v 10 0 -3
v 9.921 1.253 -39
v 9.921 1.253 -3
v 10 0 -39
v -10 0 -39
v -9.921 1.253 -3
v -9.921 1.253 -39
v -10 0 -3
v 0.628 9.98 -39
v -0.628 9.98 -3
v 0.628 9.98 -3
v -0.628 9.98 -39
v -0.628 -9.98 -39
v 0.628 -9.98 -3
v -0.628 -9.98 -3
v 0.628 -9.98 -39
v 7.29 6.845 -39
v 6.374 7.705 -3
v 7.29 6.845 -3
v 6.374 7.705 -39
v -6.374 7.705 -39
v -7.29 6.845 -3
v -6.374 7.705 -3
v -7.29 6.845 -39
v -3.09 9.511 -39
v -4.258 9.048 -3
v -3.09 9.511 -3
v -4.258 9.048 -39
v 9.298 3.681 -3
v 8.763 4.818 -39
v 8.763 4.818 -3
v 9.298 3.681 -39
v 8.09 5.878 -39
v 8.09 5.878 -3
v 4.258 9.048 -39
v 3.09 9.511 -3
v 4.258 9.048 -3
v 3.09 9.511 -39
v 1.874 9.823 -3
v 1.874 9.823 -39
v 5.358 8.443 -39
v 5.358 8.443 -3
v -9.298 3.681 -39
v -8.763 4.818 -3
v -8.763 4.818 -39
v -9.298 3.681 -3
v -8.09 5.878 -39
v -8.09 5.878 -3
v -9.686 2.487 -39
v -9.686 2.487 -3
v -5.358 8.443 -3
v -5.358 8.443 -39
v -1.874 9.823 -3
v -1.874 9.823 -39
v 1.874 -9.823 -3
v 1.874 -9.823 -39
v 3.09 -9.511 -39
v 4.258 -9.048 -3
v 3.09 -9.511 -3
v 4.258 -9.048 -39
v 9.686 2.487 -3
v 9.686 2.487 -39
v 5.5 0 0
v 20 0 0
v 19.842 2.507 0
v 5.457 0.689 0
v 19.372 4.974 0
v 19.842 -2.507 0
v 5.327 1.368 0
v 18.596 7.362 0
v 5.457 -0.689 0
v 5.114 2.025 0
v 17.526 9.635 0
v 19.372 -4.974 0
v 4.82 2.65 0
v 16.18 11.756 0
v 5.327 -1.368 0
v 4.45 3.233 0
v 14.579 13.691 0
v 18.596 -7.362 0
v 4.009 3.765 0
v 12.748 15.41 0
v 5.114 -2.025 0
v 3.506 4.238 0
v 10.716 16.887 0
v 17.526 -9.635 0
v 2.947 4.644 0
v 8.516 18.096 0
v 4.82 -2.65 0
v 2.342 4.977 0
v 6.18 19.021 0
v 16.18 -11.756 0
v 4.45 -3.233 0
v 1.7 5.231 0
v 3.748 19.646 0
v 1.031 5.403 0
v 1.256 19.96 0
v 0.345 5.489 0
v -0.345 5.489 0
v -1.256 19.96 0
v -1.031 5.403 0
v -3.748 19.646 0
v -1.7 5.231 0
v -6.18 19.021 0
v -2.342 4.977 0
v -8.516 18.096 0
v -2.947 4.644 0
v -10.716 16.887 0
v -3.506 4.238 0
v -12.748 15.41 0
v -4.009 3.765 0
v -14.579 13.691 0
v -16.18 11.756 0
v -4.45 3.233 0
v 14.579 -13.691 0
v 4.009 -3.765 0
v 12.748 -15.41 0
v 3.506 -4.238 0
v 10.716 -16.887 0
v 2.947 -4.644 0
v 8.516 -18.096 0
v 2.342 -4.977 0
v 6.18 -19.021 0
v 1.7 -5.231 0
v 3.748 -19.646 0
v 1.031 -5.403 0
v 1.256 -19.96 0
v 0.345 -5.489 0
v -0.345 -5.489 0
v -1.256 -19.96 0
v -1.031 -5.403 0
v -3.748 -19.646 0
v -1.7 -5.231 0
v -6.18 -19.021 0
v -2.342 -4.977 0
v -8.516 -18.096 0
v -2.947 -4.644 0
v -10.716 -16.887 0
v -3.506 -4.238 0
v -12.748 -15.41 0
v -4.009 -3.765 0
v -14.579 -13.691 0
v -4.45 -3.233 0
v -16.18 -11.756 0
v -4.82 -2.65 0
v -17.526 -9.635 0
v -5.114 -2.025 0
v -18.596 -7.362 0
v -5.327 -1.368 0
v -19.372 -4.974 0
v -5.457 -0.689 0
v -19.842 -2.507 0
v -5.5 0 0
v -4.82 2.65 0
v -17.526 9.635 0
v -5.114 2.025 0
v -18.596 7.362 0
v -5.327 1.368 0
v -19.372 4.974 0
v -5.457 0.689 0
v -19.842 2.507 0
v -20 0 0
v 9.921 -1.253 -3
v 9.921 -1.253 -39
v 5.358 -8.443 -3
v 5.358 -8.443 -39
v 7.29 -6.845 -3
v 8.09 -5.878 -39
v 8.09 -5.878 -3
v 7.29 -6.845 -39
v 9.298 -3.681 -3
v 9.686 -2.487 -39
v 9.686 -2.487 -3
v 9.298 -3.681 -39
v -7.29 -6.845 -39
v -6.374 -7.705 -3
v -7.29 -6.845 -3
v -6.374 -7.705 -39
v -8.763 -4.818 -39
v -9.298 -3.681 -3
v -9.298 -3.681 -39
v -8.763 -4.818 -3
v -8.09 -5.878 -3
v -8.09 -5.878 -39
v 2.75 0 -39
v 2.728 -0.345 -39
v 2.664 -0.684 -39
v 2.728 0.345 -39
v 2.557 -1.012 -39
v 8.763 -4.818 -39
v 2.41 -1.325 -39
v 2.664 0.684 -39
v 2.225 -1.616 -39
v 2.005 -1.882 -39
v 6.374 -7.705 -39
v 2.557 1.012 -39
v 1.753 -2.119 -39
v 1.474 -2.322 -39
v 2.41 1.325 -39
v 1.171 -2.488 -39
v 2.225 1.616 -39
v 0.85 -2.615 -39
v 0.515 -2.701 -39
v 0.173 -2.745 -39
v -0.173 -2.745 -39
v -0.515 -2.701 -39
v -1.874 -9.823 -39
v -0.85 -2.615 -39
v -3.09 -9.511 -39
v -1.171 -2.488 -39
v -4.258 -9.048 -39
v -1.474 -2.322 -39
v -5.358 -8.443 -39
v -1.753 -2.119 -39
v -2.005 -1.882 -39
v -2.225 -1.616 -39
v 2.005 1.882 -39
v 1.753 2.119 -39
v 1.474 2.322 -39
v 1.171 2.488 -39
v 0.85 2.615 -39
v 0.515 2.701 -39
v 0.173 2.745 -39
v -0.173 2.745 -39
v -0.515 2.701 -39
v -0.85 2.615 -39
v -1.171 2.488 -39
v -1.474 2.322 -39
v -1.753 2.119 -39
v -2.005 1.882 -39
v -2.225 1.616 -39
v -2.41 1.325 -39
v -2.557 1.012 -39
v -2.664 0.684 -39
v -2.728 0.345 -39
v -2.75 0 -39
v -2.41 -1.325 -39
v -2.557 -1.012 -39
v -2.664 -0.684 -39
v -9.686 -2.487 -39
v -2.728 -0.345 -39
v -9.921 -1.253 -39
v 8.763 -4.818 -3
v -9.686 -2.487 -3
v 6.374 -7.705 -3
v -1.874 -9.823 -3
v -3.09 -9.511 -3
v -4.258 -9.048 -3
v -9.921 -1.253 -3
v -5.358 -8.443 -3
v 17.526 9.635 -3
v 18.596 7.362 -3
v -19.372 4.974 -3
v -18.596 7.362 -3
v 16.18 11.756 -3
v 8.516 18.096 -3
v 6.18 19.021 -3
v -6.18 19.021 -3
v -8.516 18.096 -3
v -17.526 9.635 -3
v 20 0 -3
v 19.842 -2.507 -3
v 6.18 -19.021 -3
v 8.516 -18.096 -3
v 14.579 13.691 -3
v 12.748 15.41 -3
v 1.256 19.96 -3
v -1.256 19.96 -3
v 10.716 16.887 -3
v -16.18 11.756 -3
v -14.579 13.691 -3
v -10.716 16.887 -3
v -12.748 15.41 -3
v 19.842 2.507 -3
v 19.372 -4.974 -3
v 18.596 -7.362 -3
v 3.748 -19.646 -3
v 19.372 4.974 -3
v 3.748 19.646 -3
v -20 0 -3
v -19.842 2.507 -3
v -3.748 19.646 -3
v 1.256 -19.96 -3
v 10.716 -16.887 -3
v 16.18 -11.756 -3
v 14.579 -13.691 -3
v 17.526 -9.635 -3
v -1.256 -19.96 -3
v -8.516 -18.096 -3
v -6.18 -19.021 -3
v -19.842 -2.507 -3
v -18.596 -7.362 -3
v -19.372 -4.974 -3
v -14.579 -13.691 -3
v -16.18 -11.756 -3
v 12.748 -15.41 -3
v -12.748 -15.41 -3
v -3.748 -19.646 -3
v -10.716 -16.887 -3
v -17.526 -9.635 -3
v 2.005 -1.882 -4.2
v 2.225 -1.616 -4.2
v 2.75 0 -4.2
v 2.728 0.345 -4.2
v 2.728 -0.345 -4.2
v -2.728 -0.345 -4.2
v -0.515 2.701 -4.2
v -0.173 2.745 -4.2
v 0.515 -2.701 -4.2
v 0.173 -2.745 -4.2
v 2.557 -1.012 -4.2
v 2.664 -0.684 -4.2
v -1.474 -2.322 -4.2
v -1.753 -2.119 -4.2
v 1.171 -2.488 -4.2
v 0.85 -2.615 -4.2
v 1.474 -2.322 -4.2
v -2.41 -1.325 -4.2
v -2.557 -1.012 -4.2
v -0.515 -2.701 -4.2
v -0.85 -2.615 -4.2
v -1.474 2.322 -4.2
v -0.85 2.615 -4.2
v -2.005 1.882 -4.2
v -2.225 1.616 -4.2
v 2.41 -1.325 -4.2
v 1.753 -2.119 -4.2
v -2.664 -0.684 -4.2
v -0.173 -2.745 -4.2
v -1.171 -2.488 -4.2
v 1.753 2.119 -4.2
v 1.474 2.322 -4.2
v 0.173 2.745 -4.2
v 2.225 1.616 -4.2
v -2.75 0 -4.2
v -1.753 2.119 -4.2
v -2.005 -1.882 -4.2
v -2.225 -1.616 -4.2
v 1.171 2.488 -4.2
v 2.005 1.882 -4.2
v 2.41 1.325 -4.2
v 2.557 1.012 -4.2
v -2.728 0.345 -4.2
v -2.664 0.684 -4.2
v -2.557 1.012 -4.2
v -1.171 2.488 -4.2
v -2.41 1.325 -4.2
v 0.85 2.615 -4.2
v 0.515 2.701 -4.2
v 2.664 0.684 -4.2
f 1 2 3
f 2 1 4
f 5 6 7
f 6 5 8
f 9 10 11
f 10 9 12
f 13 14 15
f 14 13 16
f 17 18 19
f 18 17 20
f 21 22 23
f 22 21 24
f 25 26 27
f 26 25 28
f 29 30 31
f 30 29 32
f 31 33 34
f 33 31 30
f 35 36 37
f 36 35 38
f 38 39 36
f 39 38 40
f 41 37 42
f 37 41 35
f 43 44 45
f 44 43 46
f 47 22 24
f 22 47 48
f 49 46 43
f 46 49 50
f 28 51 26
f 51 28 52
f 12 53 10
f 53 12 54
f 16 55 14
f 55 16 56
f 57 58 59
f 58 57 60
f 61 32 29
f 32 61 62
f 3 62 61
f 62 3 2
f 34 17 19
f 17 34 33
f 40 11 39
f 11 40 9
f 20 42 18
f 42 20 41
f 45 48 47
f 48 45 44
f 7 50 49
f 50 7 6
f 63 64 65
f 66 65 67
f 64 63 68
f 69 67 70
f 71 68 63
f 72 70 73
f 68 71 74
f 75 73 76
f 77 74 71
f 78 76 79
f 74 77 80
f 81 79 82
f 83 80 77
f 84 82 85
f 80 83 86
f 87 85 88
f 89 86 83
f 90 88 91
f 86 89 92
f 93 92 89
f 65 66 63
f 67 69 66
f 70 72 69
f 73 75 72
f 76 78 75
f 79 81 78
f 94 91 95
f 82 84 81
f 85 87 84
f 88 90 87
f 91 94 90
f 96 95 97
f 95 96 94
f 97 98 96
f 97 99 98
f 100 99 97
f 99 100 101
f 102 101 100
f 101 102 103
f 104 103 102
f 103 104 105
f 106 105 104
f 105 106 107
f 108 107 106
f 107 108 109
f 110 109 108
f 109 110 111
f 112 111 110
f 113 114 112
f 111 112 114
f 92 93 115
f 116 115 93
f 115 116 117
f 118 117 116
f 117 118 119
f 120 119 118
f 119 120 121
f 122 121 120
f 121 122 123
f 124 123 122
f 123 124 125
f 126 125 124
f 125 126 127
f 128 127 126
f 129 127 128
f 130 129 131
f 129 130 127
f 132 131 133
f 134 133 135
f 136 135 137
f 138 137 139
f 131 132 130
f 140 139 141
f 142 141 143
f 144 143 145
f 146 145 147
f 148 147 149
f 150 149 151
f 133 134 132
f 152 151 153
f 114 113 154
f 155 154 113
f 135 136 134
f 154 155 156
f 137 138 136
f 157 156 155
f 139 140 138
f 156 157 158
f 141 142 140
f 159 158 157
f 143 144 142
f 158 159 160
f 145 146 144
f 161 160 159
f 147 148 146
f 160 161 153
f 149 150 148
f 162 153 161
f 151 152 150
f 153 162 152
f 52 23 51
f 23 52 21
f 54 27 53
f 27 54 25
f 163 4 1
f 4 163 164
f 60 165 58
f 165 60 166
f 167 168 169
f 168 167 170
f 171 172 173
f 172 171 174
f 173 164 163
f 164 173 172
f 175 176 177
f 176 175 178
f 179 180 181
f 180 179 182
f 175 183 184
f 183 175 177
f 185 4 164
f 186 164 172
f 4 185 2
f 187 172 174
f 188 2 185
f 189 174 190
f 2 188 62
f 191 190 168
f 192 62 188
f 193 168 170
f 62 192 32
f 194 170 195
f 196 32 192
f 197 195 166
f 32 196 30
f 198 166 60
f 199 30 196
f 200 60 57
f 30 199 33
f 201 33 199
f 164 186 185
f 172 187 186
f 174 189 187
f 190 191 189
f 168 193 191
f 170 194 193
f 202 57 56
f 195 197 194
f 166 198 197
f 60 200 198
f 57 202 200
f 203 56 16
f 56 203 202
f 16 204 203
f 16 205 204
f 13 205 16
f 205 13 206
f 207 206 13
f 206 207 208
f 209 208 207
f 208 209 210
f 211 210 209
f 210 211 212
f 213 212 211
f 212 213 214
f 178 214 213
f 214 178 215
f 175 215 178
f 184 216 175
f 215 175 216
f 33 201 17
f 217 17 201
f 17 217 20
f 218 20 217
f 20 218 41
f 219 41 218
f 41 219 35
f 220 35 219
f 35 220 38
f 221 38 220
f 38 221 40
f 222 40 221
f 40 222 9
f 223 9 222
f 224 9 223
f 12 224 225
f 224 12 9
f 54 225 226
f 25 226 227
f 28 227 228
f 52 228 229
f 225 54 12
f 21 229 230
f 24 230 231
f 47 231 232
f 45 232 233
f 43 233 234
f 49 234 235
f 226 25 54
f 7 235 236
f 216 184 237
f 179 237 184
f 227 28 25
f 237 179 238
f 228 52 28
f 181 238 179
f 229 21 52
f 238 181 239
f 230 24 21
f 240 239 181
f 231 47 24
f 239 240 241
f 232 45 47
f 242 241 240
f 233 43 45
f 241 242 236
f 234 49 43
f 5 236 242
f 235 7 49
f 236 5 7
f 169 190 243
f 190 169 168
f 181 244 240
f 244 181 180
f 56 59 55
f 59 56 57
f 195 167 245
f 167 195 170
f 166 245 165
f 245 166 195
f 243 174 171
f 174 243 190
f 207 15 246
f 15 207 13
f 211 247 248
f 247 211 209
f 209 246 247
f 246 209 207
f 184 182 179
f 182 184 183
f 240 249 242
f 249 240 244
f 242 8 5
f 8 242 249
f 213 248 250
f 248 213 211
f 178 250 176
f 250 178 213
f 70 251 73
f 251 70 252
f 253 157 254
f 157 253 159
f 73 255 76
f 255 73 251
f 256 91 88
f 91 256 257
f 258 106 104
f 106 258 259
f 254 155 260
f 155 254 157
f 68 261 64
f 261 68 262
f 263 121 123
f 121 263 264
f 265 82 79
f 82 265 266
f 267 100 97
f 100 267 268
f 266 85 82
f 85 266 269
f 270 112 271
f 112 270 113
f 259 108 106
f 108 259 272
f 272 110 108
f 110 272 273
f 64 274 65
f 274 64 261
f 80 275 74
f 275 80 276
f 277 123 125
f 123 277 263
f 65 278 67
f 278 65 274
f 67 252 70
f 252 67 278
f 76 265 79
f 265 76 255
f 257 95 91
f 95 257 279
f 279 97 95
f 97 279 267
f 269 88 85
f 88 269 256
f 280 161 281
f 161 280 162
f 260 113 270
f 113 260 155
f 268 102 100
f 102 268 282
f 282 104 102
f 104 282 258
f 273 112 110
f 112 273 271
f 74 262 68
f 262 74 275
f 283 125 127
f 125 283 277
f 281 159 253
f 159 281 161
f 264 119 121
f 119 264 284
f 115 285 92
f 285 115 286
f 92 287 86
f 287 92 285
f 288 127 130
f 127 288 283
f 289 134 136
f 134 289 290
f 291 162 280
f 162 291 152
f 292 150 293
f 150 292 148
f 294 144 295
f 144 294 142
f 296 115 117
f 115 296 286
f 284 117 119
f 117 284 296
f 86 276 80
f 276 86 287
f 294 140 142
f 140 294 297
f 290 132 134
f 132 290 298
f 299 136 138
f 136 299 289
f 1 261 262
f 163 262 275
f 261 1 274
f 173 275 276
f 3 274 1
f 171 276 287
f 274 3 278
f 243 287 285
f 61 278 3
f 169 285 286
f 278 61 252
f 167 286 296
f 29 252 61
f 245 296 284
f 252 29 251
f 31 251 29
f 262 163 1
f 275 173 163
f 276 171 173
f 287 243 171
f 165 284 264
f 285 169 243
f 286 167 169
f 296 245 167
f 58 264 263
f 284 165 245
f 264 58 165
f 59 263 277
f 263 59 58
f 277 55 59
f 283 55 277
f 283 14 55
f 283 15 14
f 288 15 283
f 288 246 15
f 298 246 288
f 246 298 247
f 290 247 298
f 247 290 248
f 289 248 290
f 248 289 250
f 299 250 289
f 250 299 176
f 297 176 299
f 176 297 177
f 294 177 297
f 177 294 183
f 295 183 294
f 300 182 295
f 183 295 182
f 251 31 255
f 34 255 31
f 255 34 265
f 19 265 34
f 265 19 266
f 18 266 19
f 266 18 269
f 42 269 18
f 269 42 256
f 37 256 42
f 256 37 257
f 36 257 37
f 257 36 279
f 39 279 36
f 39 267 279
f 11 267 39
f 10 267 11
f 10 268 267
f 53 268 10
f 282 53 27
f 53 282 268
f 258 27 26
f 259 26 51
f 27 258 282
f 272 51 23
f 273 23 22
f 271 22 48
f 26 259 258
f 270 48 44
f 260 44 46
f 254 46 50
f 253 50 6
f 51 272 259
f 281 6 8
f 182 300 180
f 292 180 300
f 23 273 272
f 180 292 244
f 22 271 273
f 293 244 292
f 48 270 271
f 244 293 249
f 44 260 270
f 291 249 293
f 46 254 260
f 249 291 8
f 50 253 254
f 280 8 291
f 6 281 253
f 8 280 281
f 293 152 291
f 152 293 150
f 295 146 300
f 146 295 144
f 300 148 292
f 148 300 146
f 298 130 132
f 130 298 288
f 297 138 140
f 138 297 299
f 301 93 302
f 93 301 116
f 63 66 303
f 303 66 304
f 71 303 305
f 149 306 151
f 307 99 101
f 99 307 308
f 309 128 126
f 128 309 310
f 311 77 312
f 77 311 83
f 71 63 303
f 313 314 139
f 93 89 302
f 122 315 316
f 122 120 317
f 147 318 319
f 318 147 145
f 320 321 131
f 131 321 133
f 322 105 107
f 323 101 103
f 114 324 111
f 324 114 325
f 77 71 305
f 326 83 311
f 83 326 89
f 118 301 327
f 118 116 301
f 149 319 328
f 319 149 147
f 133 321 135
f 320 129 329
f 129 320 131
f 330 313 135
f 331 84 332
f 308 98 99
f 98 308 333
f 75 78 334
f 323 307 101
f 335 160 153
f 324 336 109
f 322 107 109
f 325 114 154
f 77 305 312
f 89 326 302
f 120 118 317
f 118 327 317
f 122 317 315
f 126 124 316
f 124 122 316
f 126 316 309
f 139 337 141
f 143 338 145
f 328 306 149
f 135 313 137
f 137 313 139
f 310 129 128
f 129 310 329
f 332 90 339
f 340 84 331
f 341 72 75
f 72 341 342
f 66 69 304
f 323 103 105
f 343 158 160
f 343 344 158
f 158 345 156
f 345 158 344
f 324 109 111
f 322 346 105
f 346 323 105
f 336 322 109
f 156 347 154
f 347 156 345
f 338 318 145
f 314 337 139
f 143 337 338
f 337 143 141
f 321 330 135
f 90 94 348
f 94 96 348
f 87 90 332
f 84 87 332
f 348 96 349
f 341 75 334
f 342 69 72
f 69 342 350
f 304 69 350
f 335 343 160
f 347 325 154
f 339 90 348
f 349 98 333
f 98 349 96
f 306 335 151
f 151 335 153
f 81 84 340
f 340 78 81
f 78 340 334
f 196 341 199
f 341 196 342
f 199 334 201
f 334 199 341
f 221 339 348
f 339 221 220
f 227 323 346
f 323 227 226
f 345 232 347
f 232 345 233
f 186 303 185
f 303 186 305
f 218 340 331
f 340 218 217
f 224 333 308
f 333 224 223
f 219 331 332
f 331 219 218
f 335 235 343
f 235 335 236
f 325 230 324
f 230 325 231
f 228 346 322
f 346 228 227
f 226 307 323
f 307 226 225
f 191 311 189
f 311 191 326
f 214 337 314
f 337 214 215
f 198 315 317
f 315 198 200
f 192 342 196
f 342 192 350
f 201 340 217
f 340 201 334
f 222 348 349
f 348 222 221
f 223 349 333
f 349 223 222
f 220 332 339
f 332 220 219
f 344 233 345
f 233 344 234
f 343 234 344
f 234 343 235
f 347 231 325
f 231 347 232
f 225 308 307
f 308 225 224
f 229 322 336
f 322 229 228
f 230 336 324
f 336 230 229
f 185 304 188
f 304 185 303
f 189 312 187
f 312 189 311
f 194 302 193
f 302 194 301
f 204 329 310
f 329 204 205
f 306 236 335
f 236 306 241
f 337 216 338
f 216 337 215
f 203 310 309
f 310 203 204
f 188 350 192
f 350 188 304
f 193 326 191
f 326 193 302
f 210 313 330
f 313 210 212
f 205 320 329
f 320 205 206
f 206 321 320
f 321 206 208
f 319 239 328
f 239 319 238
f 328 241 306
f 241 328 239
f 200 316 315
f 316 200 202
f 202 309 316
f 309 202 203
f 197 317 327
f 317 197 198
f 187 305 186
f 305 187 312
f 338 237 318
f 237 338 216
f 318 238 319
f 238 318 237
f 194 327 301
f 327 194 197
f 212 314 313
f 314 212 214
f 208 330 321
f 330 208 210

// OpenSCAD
$fn = 50;


difference() {
	union() {
		translate(v = [0, 0, -39.0000000000]) {
			cylinder(h = 39, r = 10.0000000000);
		}
		translate(v = [0, 0, -3.0000000000]) {
			cylinder(h = 3, r = 20.0000000000);
		}
	}
	union() {
		translate(v = [0, 0, 0]) {
			rotate(a = [0, 0, 0]) {
				difference() {
					union() {
						#translate(v = [0, 0, -39.0000000000]) {
							cylinder(h = 39, r = 2.2500000000);
						}
						#translate(v = [0, 0, -4.2000000000]) {
							cylinder(h = 4.2000000000, r1 = 2.7500000000, r2 = 5.5000000000);
						}
						#translate(v = [0, 0, -39.0000000000]) {
							cylinder(h = 39, r = 2.7500000000);
						}
						#translate(v = [0, 0, -39.0000000000]) {
							cylinder(h = 39, r = 2.2500000000);
						}
					}
					union();
				}
			}
		}
	}
}
